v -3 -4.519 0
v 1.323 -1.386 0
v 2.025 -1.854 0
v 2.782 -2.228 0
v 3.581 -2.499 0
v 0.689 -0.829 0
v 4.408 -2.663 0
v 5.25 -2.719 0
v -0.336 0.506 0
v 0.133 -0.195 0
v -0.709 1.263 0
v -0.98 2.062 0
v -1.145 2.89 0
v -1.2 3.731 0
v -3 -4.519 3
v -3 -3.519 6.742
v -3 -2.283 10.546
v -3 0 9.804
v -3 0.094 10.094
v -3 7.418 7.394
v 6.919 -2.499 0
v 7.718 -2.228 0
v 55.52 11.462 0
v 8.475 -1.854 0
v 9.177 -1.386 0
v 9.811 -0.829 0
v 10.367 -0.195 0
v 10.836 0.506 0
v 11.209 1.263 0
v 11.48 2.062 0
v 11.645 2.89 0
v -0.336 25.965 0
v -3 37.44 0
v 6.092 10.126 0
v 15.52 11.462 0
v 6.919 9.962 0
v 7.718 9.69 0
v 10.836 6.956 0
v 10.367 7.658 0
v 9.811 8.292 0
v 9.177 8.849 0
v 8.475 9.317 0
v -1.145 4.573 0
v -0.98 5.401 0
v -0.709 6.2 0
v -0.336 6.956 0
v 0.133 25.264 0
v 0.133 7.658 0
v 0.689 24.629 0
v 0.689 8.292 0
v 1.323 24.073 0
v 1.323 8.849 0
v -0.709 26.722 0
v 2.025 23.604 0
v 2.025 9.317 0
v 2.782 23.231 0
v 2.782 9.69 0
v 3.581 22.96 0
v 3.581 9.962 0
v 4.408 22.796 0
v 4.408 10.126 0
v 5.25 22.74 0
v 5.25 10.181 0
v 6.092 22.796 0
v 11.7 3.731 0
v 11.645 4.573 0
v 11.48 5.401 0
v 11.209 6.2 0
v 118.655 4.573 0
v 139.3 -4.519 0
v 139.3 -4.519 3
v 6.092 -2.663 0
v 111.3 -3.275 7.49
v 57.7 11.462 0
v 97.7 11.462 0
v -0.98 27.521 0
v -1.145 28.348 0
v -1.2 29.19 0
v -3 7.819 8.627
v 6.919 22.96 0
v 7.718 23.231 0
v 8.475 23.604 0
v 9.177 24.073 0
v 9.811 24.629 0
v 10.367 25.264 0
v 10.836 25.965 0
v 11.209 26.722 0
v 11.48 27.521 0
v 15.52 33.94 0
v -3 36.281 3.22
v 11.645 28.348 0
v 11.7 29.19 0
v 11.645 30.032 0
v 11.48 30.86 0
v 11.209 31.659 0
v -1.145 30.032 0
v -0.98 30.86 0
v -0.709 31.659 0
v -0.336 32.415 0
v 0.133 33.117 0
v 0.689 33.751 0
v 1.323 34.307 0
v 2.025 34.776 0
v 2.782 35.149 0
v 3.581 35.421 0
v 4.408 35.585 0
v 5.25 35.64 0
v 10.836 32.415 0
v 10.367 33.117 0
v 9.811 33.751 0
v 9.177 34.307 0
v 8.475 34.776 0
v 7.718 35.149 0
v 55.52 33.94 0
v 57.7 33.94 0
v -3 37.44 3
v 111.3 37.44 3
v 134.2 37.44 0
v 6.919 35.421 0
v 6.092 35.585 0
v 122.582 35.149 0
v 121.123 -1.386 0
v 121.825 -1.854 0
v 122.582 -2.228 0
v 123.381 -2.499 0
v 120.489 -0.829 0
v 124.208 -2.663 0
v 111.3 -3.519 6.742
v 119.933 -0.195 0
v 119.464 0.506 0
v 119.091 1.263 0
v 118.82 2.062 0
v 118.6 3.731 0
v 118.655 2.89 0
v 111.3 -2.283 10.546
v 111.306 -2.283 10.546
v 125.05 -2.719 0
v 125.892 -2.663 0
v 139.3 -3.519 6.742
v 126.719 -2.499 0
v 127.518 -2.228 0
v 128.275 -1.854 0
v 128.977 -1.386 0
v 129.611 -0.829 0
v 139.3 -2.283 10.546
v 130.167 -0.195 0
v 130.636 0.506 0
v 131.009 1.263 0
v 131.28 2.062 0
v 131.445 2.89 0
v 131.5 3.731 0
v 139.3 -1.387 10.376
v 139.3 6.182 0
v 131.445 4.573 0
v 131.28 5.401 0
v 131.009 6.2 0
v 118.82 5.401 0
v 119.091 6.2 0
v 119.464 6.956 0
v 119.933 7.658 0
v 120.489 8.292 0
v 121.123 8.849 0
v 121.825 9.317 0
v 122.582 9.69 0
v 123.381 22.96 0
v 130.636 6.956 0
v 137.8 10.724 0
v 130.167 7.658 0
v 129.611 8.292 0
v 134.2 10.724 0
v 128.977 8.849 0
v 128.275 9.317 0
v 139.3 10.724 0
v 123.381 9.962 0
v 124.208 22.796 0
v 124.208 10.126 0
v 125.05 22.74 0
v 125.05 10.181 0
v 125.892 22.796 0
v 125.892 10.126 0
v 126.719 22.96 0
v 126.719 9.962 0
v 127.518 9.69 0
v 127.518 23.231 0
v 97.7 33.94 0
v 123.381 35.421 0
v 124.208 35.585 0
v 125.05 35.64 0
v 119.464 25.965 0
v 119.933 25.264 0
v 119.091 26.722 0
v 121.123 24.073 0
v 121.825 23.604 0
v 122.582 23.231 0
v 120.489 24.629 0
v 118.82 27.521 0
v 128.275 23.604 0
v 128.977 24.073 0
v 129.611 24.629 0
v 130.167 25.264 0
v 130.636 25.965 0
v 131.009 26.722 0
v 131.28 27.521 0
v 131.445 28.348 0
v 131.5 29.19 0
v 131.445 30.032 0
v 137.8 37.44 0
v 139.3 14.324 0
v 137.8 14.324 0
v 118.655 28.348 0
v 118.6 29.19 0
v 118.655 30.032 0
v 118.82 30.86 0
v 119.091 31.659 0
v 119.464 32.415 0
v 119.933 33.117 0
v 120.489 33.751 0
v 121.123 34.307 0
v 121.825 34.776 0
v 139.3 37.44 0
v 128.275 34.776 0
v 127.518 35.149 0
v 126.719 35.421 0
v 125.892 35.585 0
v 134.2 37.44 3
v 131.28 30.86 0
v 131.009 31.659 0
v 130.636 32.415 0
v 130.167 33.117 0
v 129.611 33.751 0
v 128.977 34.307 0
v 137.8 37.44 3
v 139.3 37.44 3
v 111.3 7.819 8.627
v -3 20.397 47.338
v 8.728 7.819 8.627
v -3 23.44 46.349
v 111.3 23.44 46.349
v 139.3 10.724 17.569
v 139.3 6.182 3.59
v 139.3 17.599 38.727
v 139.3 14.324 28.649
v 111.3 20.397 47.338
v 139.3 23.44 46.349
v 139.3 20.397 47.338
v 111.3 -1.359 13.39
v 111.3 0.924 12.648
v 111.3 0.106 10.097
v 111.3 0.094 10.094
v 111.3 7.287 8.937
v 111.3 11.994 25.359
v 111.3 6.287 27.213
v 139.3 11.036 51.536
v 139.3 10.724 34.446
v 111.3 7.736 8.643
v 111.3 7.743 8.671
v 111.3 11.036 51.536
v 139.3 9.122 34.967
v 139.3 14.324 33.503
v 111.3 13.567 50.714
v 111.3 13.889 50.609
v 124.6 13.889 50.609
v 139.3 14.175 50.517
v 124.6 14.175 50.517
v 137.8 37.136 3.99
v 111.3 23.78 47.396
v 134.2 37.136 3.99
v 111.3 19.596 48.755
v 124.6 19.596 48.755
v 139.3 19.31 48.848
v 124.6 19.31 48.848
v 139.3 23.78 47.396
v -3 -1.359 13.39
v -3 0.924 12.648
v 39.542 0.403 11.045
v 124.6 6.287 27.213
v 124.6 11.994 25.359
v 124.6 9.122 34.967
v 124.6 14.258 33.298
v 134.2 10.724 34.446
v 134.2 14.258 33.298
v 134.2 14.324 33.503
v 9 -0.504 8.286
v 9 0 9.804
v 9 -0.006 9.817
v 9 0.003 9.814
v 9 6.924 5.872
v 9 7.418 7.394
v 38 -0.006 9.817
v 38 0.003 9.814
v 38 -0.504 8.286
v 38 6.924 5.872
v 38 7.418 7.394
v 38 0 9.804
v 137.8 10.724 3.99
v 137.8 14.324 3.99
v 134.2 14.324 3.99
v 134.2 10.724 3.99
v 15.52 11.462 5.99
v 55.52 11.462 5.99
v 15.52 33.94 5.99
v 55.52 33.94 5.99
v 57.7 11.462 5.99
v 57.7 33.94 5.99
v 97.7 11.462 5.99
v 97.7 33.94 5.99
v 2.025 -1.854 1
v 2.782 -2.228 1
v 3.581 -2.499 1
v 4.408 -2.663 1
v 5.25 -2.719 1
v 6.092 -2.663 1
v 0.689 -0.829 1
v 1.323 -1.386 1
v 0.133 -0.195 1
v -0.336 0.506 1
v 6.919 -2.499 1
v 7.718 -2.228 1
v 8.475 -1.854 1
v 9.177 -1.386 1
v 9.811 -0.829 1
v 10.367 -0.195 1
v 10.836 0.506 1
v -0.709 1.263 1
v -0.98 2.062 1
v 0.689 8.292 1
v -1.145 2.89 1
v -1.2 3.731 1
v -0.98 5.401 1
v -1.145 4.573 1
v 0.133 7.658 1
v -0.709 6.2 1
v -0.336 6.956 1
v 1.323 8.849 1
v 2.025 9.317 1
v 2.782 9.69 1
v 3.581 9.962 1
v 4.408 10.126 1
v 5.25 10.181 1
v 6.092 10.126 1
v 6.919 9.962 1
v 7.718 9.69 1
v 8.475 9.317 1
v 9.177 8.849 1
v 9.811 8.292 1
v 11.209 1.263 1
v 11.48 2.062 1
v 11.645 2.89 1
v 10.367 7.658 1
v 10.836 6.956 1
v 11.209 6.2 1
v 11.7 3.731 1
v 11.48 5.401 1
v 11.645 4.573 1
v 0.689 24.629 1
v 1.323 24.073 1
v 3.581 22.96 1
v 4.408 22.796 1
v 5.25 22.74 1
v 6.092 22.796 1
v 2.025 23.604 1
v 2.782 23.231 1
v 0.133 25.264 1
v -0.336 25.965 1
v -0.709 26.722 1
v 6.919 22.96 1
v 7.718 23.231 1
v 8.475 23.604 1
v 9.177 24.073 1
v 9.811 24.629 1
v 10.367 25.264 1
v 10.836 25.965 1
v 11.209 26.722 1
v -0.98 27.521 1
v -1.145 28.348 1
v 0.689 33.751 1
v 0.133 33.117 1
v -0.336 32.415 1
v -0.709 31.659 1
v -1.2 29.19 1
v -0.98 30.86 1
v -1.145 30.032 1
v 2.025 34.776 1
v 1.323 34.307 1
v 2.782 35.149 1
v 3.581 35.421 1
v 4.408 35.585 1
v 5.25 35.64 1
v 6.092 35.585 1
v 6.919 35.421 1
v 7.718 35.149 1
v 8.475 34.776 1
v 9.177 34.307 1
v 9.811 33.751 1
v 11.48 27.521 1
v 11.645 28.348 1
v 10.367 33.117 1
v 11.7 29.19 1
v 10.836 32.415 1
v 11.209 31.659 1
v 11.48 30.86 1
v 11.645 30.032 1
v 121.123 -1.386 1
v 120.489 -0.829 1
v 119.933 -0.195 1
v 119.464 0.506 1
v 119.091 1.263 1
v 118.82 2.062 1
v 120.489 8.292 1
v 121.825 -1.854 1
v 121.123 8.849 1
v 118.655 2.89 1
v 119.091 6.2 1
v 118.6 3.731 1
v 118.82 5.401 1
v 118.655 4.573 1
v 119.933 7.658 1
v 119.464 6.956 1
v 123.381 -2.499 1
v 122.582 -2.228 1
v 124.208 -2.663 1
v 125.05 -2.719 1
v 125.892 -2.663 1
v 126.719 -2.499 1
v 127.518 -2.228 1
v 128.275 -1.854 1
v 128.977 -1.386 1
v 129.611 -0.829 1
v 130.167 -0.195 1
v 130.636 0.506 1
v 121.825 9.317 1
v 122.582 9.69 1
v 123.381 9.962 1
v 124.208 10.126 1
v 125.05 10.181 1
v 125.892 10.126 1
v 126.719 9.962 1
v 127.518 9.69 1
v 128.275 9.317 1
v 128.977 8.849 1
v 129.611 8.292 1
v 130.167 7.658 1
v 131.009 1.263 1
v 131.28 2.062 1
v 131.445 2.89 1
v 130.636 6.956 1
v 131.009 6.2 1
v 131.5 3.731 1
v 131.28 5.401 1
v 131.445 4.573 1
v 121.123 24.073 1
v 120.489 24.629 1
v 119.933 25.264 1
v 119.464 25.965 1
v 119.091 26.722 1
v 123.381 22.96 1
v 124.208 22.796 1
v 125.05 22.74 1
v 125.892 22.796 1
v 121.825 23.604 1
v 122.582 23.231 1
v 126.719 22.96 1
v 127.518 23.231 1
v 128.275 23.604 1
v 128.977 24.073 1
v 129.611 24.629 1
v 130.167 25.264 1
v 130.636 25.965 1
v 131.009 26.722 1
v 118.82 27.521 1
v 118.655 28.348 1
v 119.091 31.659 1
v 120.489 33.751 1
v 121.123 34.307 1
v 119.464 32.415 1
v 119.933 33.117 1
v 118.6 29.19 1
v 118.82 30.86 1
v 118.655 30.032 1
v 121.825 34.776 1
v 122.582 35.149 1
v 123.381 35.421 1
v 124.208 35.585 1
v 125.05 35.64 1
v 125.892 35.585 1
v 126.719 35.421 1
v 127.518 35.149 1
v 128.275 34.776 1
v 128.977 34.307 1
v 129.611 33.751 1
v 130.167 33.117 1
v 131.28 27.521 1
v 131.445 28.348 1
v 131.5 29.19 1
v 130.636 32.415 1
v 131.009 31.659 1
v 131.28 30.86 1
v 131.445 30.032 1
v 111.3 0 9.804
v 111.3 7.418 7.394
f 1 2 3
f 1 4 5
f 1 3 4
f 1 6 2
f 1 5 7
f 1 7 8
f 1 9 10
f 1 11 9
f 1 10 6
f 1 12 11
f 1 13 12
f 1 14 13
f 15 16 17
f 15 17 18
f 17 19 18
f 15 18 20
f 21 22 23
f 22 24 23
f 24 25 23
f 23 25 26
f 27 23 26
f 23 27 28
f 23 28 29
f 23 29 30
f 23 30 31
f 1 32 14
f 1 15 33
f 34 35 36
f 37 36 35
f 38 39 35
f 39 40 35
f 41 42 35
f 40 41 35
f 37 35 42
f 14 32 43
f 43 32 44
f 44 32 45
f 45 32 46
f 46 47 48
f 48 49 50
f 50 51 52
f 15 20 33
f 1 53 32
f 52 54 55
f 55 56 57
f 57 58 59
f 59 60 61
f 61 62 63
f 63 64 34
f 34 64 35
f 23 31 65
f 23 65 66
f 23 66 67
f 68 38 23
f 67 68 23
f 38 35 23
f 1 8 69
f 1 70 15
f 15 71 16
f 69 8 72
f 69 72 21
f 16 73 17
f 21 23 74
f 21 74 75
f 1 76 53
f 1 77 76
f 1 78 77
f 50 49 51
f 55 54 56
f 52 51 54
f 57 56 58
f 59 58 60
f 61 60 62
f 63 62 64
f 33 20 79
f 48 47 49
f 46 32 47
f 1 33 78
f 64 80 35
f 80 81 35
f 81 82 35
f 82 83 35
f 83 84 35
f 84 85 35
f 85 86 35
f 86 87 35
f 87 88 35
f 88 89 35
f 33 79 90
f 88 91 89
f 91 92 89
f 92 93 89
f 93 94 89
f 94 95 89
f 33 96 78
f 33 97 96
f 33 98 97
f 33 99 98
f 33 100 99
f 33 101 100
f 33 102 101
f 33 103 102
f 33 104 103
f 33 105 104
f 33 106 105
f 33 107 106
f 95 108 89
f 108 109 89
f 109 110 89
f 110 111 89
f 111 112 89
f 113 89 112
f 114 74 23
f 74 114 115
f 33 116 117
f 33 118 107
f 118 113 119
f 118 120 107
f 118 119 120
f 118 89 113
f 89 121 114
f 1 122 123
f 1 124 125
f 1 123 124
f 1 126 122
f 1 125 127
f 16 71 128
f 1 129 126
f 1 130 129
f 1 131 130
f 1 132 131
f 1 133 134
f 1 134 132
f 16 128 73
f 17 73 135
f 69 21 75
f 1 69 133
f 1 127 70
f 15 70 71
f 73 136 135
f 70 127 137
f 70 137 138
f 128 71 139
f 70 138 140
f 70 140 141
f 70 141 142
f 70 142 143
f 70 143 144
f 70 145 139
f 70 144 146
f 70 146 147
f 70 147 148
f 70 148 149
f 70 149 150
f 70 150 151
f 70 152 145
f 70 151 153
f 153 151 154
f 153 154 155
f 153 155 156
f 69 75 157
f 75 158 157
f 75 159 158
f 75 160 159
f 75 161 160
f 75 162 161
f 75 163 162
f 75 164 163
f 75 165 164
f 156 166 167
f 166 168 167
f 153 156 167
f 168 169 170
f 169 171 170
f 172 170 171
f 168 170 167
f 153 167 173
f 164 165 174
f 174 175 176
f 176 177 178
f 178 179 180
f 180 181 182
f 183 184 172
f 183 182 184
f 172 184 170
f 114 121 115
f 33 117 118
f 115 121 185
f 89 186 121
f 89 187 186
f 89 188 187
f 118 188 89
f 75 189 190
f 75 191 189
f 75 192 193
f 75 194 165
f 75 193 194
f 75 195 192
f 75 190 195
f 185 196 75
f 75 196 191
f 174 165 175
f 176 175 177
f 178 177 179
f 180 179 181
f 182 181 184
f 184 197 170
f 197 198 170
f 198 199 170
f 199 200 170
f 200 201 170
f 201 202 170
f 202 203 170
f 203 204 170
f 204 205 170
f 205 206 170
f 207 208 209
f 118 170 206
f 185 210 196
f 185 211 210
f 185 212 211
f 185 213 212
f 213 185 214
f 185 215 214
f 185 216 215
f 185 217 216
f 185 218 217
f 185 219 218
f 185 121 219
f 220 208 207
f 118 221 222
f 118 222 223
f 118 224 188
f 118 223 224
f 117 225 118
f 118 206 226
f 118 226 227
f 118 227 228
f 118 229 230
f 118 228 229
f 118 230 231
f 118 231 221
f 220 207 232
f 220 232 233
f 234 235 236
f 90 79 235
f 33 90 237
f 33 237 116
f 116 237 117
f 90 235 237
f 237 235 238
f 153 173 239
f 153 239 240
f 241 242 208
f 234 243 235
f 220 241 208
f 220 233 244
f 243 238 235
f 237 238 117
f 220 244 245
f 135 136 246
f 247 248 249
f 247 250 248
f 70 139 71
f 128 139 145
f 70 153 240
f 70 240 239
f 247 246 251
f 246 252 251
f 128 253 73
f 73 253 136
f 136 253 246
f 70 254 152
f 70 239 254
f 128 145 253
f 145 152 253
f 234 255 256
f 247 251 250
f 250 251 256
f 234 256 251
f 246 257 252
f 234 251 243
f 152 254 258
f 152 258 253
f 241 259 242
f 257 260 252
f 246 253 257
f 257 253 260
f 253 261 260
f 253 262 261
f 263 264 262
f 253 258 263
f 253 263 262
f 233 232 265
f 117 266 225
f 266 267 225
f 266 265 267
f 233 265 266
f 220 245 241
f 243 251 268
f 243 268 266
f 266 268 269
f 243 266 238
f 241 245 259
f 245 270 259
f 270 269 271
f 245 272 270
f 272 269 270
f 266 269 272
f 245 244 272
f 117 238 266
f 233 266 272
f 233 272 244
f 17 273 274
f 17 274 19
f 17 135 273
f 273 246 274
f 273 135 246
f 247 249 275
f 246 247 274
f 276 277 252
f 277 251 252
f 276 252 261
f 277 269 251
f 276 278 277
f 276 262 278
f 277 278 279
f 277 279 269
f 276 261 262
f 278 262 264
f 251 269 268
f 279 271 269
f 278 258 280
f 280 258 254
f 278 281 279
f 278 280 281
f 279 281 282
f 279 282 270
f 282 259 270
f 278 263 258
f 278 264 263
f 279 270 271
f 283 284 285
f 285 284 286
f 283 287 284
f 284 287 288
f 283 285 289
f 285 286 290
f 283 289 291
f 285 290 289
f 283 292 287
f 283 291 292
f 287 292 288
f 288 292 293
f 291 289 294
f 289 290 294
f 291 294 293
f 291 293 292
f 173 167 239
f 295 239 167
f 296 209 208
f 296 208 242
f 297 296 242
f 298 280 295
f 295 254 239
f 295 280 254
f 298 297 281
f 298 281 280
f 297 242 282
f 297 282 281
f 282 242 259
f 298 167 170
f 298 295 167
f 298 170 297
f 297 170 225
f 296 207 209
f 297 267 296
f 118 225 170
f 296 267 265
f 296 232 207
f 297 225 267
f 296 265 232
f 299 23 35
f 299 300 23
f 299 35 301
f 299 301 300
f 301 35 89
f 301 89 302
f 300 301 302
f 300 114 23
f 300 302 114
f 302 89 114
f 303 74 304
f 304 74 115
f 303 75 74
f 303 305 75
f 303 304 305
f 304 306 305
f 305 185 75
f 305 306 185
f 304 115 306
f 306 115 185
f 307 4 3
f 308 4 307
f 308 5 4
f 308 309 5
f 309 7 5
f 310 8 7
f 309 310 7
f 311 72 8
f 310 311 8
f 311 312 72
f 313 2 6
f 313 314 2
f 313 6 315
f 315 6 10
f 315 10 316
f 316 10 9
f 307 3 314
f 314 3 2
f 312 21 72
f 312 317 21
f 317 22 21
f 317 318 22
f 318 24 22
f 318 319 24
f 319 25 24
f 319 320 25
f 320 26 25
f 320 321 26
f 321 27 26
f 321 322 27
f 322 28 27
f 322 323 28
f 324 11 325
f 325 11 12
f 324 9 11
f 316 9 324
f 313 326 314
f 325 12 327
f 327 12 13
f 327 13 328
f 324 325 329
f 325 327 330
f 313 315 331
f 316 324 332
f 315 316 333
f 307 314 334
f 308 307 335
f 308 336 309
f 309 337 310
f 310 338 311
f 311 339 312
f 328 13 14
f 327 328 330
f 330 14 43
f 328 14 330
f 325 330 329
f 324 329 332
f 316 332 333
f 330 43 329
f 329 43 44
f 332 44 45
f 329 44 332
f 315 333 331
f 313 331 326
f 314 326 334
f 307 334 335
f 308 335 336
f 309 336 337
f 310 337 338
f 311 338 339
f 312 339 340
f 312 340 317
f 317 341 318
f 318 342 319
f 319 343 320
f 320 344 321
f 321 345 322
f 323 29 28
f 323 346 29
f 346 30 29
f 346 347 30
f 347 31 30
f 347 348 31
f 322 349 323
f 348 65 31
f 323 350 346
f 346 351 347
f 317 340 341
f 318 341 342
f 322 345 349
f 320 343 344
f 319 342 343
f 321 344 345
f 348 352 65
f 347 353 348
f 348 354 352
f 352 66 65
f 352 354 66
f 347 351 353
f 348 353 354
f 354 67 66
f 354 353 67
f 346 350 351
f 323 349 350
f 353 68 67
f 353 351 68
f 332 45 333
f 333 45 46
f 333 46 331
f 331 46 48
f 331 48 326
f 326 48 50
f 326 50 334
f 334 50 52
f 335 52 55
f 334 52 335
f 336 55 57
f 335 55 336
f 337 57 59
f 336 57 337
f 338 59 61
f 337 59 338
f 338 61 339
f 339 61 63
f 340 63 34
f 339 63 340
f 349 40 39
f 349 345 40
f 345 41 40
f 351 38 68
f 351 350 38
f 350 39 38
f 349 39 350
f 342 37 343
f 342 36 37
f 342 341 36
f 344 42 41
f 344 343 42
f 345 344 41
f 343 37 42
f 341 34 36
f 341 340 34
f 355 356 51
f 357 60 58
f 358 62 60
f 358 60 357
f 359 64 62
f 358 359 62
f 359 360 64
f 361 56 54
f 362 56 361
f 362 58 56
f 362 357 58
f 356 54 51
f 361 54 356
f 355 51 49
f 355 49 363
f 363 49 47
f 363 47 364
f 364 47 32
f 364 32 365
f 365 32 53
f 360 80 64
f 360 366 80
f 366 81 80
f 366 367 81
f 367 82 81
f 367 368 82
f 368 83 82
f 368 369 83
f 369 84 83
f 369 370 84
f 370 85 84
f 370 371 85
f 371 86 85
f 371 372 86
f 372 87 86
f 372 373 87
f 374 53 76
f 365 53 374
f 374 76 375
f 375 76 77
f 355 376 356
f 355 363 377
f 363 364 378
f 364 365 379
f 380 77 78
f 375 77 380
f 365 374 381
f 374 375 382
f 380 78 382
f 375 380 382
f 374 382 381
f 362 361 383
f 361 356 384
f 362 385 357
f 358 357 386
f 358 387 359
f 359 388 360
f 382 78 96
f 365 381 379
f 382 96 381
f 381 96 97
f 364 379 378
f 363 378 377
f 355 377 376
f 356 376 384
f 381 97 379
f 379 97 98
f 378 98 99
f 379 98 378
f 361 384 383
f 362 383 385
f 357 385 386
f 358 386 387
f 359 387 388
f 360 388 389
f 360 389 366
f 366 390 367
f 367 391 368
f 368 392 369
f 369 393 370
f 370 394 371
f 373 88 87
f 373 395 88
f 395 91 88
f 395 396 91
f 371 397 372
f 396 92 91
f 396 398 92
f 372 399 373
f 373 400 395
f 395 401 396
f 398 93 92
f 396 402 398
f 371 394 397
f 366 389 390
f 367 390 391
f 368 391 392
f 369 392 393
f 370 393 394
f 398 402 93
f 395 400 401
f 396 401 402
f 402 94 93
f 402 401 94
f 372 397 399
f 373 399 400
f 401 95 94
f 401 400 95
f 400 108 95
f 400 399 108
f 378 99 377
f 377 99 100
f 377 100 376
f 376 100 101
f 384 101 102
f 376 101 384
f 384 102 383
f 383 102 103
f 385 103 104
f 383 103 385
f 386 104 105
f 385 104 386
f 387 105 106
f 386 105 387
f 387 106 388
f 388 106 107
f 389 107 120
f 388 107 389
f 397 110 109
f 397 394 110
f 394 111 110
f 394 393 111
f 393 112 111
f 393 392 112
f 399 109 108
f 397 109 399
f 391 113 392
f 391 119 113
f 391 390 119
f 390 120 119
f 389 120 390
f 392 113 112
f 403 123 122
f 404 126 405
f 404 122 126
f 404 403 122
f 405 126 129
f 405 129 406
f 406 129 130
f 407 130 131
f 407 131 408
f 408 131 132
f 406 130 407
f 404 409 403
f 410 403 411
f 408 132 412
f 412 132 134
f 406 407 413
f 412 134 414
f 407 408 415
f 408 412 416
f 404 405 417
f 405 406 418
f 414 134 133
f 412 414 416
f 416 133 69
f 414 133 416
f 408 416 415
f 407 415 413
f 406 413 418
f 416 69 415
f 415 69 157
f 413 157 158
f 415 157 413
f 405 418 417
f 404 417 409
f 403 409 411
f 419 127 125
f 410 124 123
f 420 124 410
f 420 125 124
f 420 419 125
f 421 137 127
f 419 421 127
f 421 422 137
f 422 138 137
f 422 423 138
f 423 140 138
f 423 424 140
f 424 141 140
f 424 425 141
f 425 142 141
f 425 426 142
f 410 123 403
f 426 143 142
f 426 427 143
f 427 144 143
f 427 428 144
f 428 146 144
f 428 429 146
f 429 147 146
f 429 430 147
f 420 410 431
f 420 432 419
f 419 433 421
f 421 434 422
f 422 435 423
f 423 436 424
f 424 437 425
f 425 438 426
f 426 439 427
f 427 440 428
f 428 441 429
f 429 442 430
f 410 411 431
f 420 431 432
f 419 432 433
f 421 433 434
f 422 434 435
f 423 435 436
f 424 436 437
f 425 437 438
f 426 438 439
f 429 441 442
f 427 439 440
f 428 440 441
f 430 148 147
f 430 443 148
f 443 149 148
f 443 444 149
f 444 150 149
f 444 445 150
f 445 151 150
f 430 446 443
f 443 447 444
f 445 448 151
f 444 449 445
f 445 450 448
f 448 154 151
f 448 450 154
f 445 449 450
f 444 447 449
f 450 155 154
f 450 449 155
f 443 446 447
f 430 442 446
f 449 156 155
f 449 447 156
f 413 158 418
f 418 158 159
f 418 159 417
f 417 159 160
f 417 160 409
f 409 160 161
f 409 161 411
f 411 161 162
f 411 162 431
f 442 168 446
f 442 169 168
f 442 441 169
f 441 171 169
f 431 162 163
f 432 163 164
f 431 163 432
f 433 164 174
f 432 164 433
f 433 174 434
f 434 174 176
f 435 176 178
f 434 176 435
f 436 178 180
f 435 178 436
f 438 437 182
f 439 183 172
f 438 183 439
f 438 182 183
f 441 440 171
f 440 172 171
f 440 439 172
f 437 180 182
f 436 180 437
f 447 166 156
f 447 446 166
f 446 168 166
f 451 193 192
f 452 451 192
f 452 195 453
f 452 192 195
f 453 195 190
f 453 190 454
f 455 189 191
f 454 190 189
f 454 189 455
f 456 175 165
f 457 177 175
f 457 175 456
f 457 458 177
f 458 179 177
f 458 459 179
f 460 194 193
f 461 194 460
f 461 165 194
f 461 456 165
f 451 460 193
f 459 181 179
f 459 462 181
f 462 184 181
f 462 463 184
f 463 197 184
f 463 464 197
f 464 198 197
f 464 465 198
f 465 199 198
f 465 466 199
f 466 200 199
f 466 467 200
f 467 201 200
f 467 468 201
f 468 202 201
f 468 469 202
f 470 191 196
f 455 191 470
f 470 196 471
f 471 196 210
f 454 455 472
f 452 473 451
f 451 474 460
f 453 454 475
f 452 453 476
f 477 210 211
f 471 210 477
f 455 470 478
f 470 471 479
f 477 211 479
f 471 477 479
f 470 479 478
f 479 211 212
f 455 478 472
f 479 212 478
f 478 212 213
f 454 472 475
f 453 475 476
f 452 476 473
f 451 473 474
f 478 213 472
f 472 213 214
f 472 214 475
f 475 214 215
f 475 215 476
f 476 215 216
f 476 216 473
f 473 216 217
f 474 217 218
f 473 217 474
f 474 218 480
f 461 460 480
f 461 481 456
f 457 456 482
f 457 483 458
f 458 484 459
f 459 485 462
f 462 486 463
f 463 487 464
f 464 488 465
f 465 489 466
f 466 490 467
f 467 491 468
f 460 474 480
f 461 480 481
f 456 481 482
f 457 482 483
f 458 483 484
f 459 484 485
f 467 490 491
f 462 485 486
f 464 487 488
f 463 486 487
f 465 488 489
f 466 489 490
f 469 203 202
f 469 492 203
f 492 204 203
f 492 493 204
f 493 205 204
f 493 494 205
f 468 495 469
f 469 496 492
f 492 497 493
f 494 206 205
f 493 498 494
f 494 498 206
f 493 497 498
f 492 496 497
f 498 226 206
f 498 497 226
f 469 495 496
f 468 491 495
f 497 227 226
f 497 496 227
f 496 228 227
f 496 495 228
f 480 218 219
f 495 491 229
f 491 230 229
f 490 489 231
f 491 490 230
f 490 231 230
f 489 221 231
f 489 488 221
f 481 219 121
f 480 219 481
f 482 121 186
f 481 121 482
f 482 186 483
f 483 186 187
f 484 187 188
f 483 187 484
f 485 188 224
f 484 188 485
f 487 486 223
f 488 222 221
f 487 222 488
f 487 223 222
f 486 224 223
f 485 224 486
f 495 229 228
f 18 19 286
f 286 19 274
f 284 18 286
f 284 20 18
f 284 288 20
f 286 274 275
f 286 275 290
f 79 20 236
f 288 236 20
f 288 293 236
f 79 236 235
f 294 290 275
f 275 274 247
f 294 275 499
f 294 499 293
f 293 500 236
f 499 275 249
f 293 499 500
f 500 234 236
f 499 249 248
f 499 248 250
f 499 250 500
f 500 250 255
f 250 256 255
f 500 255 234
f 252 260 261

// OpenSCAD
// Drawer Deck stand: iPod touch 4th gen, landscape, with a 30-pin charging plug.
// Home button on the right, so the dock connector faces right and the plug sits
// in the right-hand tower. Slide the iPod rightwards onto the plug.
// Prints flat on its base, no supports. All sizes in mm.

/* [iPod touch 4] */
ipod_len   = 111.0;  // long edge (horizontal in landscape)
ipod_h     = 58.9;   // short edge (vertical in landscape)
ipod_t     = 7.2;    // thickness
fit        = 0.6;    // total play in the slot

// Volume buttons end up on the bottom edge in this orientation.
vol_from   = 9;      // from the left end of the iPod
vol_to     = 38;

/* [30-pin plug] */
plug_w     = 21.3;   // plastic body, along the iPod's short edge
plug_t     = 5.4;    // plastic body thickness
plug_len   = 13.0;   // plastic body length (without the metal tongue)
plug_y     = 3.6;    // body centre measured from the iPod's screen face
relief_d   = 4.8;    // strain relief diameter
relief_len = 9;
cable_d    = 3.6;
plug_clr   = 0.3;    // per side

/* [Stand] */
tilt       = 18;     // lean back from vertical, degrees
back_h     = 42;     // backrest height above the ledge
wall       = 3.2;
ledge_t    = 4;      // ledge thickness under the iPod
lip_h      = 3.0;    // front lip; screen starts ~4.8 mm in, so keep below that
lip_t      = 2.4;
lift       = 6;      // ledge underside height above the desk
left_margin = 3;     // ledge beyond the iPod's left end
tower_extra = 6;     // tower length beyond the strain relief
rear_foot  = 14;     // base depth behind the backrest
base_t     = 3;

/* [Desk fixing] */
pad_d      = 12.5;   // stick-on rubber feet
pad_depth  = 1.0;
weight_l   = 40;     // open-bottom pockets for coins / steel nuts, behind the slot
weight_h   = 6;

$fn = 48;
eps = 0.01;

slot_t   = ipod_t + fit;
tower_x0 = ipod_len + fit / 2;                 // tower face the iPod edge touches
tower_x1 = tower_x0 + plug_len + relief_len + tower_extra;
x0       = -left_margin;
yb       = slot_t + wall;                      // backrest rear face (device frame)

// ---- device frame: x along iPod, y backwards from the screen face, z up from ledge ----
// Tilt leans the top back and lifts the cradle onto its supports.
module place() {
  translate([0, 0, lift + ledge_t * cos(tilt)])
    rotate([-tilt, 0, 0]) children();
}
// where a device-frame point lands, for sizing the supports
function py(y, z) = y * cos(tilt) + z * sin(tilt);
function pz(y, z) = lift + ledge_t * cos(tilt) - y * sin(tilt) + z * cos(tilt);

module ledge()    translate([x0, -lip_t, -ledge_t]) cube([tower_x1 - x0, yb + lip_t, ledge_t]);
module lip()      translate([x0, -lip_t, -eps])     cube([tower_x0 - x0, lip_t, lip_h]);
module backrest() translate([x0, slot_t, -ledge_t]) cube([tower_x1 - x0, wall, back_h + ledge_t]);

// Tower to the right of the iPod, holding the plug at the connector's height.
tower_top = ipod_h / 2 + plug_w / 2 + 3;
module tower()    translate([tower_x0, -lip_t, -ledge_t]) cube([tower_x1 - tower_x0, yb + lip_t, tower_top + ledge_t]);

module plug_cut() {
  zc = ipod_h / 2;
  // plug body, open to the top so the cable drops in
  translate([tower_x0 - eps, plug_y - plug_t / 2 - plug_clr, zc - plug_w / 2 - plug_clr])
    cube([plug_len + plug_clr + eps, plug_t + 2 * plug_clr, tower_top]);
  // strain relief channel to the outer face, also open to the top
  translate([tower_x0 + plug_len, plug_y - relief_d / 2 - plug_clr, zc - relief_d / 2 - plug_clr])
    cube([tower_x1 - tower_x0, relief_d + 2 * plug_clr, tower_top]);
}

module vol_relief() translate([vol_from, -eps, -1.6]) cube([vol_to - vol_from, slot_t + eps, 1.6 + eps]);

// ---- supports: hull each part down to a slab on the desk, never across the slot ----
y_front  = py(-lip_t, -ledge_t) - 1;
y_back_f = py(slot_t, -ledge_t);
y_rear   = max(py(yb, back_h), py(yb, -ledge_t)) + rear_foot;
module slab(y0, x1 = tower_x1) translate([x0, y0, 0]) cube([x1 - x0, y_rear - y0, base_t]);

module body() {
  hull() { place() ledge(); slab(y_front); }
  hull() { place() backrest(); slab(y_back_f); }
  hull() { place() tower(); translate([tower_x0, y_front, 0]) cube([tower_x1 - tower_x0, y_rear - y_front, base_t]); }
  place() lip();
}

// Cable path from the strain relief channel: down the outer face, then under the base to the back.
module cable_path() {
  zc = pz(plug_y, ipod_h / 2);
  yc = py(plug_y, ipod_h / 2);
  // vertical groove in the tower's outer face
  translate([tower_x1 - cable_d - 1.5, yc - cable_d / 2, -eps]) cube([cable_d + 1.5 + eps, cable_d, zc + 1]);
  // channel under the base to the rear edge
  translate([tower_x1 - cable_d - 1.5, yc - cable_d / 2, -eps]) cube([cable_d, y_rear - yc + cable_d, cable_d + 0.4]);
}

module desk_fixing() {
  // Weight pockets live in the solid wedge behind the backrest. Further forward
  // they would break into the slot, whose floor is only ~7 mm above the desk.
  wy0 = py(yb, 0) + 1;
  wy1 = y_rear - 3.5;
  for (cx = [ipod_len * 0.32, ipod_len * 0.70])
    translate([cx - weight_l / 2, wy0, -eps]) cube([weight_l, wy1 - wy0, weight_h]);
  // rubber feet in the corners
  for (x = [x0 + pad_d / 2 + 2, tower_x1 - pad_d / 2 - 8], y = [y_front + pad_d / 2 + 2, y_rear - pad_d / 2 - 2])
    translate([x, y, -eps]) cylinder(d = pad_d + 0.4, h = pad_depth + eps);
}

difference() {
  body();
  place() { plug_cut(); vol_relief(); }
  // the slot itself, in case a hull grazed it
  place() translate([x0 - 1, 0, 0]) cube([tower_x0 - x0 + 1, slot_t, back_h + 20]);
  cable_path();
  desk_fixing();
}

// Ghost iPod for checking the fit in the OpenSCAD preview (F5 only).
%place() translate([fit / 2, fit / 2, 0]) cube([ipod_len, ipod_t, ipod_h]);
